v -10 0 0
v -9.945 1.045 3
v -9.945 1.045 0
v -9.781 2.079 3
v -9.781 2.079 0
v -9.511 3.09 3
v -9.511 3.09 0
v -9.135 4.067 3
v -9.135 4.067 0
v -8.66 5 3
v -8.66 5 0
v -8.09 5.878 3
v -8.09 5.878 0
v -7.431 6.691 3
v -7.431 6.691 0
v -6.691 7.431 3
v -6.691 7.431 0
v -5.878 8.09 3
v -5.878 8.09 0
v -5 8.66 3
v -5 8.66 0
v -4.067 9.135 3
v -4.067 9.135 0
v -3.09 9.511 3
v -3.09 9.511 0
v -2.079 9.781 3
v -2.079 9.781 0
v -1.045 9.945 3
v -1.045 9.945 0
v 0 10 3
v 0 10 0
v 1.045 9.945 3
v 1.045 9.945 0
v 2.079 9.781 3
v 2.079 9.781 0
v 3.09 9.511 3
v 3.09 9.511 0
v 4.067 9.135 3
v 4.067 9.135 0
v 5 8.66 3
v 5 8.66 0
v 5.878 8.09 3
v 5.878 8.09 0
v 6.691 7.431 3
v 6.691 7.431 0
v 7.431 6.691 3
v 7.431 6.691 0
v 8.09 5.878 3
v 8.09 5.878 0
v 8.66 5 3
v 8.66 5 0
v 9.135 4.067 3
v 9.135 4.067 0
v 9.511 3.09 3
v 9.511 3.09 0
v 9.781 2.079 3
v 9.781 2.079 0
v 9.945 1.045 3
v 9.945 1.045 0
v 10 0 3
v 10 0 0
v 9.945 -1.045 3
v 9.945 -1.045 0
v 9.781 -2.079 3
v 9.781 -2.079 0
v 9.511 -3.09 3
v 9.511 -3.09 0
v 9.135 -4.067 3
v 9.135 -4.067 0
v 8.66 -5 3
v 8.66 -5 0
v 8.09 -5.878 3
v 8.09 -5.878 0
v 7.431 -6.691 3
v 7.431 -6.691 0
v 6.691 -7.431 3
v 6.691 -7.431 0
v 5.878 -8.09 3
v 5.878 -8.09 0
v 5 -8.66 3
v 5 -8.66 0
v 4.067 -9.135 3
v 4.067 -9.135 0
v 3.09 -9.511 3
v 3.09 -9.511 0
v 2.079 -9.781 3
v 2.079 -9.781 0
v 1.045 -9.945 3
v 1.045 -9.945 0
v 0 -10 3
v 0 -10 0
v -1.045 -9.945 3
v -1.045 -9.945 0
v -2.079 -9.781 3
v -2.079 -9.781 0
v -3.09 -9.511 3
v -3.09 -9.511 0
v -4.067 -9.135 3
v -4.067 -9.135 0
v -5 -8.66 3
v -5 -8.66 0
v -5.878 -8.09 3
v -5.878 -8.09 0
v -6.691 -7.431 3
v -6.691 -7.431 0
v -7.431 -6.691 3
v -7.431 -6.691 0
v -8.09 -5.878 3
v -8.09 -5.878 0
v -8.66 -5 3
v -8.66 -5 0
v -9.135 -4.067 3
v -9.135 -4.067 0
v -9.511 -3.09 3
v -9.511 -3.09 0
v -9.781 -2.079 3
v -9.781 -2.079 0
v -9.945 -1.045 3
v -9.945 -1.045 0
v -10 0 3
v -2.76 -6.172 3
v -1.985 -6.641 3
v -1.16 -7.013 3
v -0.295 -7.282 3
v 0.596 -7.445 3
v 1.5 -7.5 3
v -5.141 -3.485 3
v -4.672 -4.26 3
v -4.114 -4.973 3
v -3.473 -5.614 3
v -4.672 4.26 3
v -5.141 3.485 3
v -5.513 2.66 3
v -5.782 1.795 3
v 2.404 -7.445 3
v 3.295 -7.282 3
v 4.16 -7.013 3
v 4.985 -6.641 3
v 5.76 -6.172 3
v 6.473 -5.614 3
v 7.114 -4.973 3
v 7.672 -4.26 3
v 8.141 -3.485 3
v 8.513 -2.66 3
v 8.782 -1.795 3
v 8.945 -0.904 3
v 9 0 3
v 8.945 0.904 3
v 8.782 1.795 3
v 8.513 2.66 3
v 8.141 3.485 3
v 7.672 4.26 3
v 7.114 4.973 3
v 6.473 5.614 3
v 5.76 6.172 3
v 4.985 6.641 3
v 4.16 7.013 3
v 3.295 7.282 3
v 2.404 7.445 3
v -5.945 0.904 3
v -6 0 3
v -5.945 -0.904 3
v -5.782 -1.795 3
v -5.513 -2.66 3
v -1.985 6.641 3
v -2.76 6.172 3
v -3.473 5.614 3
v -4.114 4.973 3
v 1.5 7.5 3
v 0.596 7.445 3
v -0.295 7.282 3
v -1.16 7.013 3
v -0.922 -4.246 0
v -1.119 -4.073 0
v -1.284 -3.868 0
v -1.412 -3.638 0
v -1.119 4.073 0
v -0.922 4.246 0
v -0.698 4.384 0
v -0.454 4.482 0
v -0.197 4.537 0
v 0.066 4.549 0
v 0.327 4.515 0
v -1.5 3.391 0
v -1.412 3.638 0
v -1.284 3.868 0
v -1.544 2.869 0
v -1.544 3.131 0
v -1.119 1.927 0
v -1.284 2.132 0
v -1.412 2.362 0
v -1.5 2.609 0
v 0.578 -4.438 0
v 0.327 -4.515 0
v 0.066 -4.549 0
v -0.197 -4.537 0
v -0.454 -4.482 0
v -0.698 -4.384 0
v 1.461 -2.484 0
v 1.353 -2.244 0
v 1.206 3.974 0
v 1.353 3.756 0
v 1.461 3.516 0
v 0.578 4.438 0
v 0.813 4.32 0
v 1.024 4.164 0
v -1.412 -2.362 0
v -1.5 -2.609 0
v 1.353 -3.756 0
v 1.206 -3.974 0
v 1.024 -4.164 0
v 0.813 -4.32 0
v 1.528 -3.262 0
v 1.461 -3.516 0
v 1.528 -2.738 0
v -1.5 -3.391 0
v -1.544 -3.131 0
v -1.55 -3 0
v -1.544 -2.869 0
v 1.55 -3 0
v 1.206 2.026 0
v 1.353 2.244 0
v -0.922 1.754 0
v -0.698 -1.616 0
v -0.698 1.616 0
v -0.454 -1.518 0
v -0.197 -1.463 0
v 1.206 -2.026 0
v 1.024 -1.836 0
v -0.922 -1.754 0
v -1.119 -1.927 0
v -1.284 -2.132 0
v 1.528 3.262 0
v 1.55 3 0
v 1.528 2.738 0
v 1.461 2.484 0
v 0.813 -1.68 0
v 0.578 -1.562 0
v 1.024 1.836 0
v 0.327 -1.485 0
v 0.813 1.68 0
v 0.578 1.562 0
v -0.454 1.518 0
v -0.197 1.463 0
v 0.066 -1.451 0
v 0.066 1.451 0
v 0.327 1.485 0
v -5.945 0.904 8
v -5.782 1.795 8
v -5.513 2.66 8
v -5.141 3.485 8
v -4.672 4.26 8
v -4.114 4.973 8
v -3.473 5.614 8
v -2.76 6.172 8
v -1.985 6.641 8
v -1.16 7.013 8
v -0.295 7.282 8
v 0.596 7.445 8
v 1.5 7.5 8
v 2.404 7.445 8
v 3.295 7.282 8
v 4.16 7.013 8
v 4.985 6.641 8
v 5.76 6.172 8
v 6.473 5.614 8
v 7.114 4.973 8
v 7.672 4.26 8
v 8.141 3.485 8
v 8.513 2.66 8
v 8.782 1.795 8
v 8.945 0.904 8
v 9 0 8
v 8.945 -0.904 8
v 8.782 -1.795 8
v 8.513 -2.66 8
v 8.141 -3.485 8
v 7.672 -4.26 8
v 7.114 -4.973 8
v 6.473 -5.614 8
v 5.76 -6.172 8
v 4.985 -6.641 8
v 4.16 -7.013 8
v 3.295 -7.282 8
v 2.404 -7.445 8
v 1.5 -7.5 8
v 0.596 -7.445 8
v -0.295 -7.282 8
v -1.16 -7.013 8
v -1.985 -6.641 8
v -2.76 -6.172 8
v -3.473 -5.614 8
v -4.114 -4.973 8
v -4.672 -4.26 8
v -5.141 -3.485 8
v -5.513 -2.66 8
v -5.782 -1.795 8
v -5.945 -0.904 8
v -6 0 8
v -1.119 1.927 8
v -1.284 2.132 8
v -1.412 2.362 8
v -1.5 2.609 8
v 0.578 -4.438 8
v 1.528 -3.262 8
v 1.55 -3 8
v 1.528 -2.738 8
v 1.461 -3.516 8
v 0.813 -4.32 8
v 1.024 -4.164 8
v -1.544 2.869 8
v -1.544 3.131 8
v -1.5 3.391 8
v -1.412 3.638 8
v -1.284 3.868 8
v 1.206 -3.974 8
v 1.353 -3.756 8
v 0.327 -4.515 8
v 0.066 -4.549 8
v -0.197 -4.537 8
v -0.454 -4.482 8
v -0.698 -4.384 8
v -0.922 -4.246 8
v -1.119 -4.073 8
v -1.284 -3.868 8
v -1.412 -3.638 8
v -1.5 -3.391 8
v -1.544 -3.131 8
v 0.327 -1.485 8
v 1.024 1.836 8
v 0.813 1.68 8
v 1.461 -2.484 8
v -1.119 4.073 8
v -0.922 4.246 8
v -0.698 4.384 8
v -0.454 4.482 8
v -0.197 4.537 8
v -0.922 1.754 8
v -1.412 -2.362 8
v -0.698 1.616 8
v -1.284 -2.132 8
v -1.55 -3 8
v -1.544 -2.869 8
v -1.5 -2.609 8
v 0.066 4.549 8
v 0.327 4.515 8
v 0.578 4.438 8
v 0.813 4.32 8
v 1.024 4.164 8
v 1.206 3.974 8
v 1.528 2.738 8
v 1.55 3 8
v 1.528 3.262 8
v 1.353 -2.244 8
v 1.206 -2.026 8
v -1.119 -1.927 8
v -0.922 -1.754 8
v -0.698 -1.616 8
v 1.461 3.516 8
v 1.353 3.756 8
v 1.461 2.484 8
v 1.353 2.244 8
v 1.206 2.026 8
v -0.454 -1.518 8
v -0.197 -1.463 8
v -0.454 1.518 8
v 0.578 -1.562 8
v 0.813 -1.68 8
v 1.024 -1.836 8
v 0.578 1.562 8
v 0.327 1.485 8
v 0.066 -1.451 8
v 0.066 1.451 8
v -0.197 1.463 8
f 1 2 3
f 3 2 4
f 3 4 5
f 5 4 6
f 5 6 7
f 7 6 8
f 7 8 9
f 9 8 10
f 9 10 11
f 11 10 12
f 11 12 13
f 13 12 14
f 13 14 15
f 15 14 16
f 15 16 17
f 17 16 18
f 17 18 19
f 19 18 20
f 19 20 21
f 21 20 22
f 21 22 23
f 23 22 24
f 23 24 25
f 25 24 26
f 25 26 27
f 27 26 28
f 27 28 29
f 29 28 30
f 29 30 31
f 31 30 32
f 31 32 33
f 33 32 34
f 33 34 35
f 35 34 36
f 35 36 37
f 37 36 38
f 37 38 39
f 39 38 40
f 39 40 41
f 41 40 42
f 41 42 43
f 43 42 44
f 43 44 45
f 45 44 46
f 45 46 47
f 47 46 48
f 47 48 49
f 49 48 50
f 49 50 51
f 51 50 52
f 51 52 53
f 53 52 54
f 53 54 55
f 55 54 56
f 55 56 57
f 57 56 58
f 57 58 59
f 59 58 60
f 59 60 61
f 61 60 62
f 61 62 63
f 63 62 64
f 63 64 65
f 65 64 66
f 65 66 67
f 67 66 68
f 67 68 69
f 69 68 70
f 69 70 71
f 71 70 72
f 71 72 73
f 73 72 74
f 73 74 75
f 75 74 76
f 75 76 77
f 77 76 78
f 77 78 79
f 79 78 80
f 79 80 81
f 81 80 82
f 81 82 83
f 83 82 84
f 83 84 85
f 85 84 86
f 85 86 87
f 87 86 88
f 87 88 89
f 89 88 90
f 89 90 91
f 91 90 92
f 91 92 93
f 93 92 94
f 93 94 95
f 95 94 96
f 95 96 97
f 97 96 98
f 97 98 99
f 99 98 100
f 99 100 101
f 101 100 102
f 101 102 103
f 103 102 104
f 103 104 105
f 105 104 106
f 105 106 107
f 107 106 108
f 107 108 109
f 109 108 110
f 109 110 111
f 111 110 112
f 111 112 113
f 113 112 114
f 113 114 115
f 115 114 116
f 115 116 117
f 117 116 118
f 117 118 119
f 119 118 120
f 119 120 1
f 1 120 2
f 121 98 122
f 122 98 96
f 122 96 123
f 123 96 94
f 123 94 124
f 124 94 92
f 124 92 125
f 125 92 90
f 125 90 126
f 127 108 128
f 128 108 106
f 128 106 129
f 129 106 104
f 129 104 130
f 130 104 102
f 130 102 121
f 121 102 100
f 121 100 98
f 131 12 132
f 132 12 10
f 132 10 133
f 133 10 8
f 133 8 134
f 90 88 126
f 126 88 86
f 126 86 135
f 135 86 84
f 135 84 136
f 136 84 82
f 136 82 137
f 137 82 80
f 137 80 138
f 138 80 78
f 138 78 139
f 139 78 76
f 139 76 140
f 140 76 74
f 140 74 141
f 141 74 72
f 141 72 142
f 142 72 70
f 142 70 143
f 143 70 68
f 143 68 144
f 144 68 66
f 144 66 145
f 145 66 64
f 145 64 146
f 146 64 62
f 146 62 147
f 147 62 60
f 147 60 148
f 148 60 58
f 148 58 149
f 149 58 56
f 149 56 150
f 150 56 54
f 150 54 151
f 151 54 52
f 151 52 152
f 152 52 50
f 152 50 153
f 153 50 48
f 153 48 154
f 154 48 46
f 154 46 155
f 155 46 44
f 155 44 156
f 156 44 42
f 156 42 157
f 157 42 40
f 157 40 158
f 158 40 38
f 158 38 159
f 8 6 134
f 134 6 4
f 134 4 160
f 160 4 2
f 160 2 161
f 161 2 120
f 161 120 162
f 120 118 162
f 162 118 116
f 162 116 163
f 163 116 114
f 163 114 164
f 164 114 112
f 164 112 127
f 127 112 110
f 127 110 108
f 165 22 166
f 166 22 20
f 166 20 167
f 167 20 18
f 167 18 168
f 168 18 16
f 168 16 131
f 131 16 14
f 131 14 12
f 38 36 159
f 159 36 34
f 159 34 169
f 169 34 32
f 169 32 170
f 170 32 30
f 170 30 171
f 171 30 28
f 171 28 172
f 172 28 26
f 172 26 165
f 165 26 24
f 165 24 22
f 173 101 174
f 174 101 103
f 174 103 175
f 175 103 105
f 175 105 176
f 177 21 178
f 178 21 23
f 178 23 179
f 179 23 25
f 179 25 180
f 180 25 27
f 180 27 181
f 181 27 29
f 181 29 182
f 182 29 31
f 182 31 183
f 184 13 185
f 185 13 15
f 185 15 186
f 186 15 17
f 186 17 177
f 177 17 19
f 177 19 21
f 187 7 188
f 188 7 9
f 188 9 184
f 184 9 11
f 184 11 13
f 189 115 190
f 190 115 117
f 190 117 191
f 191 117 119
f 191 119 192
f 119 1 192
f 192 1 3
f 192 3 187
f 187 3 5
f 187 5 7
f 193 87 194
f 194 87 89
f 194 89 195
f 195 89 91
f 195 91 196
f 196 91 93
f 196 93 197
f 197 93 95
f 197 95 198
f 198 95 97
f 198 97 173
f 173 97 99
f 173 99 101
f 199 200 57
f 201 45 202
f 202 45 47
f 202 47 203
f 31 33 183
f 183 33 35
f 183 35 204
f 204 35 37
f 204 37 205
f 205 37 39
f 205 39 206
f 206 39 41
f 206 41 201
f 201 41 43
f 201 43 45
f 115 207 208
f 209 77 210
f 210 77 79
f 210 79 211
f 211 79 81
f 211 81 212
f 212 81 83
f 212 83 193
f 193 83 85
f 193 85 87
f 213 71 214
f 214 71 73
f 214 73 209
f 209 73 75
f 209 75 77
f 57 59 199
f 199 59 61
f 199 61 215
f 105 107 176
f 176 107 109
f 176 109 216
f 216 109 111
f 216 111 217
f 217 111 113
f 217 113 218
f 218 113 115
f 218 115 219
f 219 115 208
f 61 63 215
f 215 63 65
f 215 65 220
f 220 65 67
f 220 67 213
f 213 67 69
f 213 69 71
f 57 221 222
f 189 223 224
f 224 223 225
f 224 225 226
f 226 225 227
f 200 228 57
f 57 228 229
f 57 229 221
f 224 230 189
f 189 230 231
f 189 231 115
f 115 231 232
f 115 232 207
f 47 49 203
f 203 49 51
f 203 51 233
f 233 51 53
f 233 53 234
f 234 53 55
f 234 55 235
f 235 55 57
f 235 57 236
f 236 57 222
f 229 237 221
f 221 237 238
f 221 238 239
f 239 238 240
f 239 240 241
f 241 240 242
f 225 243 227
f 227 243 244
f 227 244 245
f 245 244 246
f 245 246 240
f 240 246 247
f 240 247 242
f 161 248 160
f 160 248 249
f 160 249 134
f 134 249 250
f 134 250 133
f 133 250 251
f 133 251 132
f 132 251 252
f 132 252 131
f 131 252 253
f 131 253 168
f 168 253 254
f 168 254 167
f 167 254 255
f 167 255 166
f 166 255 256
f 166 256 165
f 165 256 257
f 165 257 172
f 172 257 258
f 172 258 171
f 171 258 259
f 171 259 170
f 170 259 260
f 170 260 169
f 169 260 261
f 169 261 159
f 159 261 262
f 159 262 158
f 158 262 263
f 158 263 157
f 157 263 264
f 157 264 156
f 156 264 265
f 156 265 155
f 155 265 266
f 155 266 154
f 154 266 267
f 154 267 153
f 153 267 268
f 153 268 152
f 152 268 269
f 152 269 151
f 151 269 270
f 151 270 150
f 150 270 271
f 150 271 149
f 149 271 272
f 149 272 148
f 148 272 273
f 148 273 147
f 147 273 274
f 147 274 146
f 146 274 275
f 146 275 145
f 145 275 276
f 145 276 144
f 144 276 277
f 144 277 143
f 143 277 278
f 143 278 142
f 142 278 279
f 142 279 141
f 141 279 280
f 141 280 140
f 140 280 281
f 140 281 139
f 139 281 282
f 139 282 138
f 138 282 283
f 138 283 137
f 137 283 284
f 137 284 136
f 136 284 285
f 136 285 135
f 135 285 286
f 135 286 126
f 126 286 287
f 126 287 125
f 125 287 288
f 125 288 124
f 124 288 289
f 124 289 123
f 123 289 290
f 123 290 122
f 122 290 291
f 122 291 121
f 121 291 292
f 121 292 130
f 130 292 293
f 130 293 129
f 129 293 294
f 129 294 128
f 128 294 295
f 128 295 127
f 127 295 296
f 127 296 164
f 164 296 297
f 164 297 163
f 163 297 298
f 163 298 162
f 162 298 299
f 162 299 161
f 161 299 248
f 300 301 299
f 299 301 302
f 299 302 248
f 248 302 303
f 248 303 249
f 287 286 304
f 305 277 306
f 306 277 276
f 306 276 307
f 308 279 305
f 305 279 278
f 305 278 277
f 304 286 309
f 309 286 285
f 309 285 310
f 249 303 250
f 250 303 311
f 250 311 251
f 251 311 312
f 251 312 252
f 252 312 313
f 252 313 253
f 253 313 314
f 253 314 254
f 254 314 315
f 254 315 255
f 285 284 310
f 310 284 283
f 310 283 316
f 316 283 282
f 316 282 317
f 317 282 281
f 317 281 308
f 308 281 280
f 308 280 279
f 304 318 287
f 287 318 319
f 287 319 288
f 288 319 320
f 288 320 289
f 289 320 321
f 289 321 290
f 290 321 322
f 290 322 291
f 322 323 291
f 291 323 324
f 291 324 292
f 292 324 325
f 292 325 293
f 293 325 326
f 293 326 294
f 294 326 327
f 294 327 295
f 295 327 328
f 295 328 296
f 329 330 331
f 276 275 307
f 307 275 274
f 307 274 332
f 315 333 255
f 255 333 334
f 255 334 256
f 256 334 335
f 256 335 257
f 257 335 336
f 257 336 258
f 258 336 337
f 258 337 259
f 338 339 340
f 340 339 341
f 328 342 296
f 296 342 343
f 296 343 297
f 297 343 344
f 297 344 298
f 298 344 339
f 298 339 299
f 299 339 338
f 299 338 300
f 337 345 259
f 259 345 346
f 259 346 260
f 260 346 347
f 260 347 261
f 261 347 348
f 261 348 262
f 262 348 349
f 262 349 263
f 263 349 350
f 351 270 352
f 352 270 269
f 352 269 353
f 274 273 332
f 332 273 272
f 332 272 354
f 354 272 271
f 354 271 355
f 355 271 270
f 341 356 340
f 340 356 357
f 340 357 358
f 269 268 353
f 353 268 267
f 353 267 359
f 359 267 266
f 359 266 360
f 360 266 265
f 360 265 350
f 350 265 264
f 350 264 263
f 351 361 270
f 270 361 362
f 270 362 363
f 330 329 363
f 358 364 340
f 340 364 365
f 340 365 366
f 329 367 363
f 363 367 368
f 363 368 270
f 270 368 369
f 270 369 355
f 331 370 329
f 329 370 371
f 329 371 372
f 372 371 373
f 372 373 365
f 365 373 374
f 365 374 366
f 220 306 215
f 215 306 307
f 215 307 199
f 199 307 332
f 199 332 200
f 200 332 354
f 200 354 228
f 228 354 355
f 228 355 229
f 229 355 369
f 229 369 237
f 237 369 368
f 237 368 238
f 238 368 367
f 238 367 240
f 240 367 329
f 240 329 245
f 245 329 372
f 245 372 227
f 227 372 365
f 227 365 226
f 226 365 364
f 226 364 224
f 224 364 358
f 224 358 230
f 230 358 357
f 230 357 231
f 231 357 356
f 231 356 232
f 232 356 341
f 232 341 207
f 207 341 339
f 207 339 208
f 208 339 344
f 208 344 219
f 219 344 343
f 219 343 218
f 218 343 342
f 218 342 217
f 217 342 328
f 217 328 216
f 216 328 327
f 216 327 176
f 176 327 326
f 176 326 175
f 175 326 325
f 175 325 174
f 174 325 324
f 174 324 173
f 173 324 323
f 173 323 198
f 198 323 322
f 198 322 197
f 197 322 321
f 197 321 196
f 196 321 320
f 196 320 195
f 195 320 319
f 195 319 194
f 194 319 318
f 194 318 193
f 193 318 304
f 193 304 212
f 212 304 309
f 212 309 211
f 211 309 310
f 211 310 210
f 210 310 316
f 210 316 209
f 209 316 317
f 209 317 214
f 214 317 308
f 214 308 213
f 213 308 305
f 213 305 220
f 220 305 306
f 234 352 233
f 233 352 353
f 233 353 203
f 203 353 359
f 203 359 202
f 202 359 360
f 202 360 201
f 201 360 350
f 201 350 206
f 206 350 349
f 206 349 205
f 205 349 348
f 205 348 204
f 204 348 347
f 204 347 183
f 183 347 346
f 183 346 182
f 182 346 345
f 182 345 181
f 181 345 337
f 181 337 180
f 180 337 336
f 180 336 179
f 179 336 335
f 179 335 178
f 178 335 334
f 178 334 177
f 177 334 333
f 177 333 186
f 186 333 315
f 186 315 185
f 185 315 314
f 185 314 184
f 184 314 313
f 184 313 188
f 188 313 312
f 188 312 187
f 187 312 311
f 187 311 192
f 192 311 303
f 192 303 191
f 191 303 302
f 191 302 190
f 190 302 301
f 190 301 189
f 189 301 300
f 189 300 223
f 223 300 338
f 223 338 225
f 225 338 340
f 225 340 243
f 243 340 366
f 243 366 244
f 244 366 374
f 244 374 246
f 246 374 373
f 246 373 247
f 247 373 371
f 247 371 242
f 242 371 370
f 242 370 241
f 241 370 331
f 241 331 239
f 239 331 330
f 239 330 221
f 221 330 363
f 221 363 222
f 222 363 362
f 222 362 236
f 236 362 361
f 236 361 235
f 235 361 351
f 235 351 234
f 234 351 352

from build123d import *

# Parameters (mm, degrees)
SKETCH1_R           = 10
BOSS_EXTRUDE1_DEPTH = 3
SKETCH2_R           = 7.5
BOSS_EXTRUDE2_DEPTH = 5
SKETCH3_R           = 1.55
CUT_EXTRUDE1_DEPTH  = 17.248076809


with BuildPart() as part:
    # Sketch1 → Boss-Extrude1 (new body)
    with BuildSketch(Plane.XY):
        Circle(SKETCH1_R)
    extrude(amount=BOSS_EXTRUDE1_DEPTH)

    # Sketch2 → Boss-Extrude2 (add)
    with BuildSketch(Plane.XY.offset(3)):
        with Locations((1.5, 0)):
            Circle(SKETCH2_R)
    extrude(amount=BOSS_EXTRUDE2_DEPTH)

    # Sketch3 → Cut-Extrude1 (cut, through all)
    with BuildSketch(Plane.XY.offset(8)):
        with Locations((0, 3)):
            Circle(SKETCH3_R)
        with Locations(Location((0, -3, 0), (0, 0, 180))):
            Circle(SKETCH3_R)
    extrude(amount=-CUT_EXTRUDE1_DEPTH, mode=Mode.SUBTRACT)


solid = part.part
